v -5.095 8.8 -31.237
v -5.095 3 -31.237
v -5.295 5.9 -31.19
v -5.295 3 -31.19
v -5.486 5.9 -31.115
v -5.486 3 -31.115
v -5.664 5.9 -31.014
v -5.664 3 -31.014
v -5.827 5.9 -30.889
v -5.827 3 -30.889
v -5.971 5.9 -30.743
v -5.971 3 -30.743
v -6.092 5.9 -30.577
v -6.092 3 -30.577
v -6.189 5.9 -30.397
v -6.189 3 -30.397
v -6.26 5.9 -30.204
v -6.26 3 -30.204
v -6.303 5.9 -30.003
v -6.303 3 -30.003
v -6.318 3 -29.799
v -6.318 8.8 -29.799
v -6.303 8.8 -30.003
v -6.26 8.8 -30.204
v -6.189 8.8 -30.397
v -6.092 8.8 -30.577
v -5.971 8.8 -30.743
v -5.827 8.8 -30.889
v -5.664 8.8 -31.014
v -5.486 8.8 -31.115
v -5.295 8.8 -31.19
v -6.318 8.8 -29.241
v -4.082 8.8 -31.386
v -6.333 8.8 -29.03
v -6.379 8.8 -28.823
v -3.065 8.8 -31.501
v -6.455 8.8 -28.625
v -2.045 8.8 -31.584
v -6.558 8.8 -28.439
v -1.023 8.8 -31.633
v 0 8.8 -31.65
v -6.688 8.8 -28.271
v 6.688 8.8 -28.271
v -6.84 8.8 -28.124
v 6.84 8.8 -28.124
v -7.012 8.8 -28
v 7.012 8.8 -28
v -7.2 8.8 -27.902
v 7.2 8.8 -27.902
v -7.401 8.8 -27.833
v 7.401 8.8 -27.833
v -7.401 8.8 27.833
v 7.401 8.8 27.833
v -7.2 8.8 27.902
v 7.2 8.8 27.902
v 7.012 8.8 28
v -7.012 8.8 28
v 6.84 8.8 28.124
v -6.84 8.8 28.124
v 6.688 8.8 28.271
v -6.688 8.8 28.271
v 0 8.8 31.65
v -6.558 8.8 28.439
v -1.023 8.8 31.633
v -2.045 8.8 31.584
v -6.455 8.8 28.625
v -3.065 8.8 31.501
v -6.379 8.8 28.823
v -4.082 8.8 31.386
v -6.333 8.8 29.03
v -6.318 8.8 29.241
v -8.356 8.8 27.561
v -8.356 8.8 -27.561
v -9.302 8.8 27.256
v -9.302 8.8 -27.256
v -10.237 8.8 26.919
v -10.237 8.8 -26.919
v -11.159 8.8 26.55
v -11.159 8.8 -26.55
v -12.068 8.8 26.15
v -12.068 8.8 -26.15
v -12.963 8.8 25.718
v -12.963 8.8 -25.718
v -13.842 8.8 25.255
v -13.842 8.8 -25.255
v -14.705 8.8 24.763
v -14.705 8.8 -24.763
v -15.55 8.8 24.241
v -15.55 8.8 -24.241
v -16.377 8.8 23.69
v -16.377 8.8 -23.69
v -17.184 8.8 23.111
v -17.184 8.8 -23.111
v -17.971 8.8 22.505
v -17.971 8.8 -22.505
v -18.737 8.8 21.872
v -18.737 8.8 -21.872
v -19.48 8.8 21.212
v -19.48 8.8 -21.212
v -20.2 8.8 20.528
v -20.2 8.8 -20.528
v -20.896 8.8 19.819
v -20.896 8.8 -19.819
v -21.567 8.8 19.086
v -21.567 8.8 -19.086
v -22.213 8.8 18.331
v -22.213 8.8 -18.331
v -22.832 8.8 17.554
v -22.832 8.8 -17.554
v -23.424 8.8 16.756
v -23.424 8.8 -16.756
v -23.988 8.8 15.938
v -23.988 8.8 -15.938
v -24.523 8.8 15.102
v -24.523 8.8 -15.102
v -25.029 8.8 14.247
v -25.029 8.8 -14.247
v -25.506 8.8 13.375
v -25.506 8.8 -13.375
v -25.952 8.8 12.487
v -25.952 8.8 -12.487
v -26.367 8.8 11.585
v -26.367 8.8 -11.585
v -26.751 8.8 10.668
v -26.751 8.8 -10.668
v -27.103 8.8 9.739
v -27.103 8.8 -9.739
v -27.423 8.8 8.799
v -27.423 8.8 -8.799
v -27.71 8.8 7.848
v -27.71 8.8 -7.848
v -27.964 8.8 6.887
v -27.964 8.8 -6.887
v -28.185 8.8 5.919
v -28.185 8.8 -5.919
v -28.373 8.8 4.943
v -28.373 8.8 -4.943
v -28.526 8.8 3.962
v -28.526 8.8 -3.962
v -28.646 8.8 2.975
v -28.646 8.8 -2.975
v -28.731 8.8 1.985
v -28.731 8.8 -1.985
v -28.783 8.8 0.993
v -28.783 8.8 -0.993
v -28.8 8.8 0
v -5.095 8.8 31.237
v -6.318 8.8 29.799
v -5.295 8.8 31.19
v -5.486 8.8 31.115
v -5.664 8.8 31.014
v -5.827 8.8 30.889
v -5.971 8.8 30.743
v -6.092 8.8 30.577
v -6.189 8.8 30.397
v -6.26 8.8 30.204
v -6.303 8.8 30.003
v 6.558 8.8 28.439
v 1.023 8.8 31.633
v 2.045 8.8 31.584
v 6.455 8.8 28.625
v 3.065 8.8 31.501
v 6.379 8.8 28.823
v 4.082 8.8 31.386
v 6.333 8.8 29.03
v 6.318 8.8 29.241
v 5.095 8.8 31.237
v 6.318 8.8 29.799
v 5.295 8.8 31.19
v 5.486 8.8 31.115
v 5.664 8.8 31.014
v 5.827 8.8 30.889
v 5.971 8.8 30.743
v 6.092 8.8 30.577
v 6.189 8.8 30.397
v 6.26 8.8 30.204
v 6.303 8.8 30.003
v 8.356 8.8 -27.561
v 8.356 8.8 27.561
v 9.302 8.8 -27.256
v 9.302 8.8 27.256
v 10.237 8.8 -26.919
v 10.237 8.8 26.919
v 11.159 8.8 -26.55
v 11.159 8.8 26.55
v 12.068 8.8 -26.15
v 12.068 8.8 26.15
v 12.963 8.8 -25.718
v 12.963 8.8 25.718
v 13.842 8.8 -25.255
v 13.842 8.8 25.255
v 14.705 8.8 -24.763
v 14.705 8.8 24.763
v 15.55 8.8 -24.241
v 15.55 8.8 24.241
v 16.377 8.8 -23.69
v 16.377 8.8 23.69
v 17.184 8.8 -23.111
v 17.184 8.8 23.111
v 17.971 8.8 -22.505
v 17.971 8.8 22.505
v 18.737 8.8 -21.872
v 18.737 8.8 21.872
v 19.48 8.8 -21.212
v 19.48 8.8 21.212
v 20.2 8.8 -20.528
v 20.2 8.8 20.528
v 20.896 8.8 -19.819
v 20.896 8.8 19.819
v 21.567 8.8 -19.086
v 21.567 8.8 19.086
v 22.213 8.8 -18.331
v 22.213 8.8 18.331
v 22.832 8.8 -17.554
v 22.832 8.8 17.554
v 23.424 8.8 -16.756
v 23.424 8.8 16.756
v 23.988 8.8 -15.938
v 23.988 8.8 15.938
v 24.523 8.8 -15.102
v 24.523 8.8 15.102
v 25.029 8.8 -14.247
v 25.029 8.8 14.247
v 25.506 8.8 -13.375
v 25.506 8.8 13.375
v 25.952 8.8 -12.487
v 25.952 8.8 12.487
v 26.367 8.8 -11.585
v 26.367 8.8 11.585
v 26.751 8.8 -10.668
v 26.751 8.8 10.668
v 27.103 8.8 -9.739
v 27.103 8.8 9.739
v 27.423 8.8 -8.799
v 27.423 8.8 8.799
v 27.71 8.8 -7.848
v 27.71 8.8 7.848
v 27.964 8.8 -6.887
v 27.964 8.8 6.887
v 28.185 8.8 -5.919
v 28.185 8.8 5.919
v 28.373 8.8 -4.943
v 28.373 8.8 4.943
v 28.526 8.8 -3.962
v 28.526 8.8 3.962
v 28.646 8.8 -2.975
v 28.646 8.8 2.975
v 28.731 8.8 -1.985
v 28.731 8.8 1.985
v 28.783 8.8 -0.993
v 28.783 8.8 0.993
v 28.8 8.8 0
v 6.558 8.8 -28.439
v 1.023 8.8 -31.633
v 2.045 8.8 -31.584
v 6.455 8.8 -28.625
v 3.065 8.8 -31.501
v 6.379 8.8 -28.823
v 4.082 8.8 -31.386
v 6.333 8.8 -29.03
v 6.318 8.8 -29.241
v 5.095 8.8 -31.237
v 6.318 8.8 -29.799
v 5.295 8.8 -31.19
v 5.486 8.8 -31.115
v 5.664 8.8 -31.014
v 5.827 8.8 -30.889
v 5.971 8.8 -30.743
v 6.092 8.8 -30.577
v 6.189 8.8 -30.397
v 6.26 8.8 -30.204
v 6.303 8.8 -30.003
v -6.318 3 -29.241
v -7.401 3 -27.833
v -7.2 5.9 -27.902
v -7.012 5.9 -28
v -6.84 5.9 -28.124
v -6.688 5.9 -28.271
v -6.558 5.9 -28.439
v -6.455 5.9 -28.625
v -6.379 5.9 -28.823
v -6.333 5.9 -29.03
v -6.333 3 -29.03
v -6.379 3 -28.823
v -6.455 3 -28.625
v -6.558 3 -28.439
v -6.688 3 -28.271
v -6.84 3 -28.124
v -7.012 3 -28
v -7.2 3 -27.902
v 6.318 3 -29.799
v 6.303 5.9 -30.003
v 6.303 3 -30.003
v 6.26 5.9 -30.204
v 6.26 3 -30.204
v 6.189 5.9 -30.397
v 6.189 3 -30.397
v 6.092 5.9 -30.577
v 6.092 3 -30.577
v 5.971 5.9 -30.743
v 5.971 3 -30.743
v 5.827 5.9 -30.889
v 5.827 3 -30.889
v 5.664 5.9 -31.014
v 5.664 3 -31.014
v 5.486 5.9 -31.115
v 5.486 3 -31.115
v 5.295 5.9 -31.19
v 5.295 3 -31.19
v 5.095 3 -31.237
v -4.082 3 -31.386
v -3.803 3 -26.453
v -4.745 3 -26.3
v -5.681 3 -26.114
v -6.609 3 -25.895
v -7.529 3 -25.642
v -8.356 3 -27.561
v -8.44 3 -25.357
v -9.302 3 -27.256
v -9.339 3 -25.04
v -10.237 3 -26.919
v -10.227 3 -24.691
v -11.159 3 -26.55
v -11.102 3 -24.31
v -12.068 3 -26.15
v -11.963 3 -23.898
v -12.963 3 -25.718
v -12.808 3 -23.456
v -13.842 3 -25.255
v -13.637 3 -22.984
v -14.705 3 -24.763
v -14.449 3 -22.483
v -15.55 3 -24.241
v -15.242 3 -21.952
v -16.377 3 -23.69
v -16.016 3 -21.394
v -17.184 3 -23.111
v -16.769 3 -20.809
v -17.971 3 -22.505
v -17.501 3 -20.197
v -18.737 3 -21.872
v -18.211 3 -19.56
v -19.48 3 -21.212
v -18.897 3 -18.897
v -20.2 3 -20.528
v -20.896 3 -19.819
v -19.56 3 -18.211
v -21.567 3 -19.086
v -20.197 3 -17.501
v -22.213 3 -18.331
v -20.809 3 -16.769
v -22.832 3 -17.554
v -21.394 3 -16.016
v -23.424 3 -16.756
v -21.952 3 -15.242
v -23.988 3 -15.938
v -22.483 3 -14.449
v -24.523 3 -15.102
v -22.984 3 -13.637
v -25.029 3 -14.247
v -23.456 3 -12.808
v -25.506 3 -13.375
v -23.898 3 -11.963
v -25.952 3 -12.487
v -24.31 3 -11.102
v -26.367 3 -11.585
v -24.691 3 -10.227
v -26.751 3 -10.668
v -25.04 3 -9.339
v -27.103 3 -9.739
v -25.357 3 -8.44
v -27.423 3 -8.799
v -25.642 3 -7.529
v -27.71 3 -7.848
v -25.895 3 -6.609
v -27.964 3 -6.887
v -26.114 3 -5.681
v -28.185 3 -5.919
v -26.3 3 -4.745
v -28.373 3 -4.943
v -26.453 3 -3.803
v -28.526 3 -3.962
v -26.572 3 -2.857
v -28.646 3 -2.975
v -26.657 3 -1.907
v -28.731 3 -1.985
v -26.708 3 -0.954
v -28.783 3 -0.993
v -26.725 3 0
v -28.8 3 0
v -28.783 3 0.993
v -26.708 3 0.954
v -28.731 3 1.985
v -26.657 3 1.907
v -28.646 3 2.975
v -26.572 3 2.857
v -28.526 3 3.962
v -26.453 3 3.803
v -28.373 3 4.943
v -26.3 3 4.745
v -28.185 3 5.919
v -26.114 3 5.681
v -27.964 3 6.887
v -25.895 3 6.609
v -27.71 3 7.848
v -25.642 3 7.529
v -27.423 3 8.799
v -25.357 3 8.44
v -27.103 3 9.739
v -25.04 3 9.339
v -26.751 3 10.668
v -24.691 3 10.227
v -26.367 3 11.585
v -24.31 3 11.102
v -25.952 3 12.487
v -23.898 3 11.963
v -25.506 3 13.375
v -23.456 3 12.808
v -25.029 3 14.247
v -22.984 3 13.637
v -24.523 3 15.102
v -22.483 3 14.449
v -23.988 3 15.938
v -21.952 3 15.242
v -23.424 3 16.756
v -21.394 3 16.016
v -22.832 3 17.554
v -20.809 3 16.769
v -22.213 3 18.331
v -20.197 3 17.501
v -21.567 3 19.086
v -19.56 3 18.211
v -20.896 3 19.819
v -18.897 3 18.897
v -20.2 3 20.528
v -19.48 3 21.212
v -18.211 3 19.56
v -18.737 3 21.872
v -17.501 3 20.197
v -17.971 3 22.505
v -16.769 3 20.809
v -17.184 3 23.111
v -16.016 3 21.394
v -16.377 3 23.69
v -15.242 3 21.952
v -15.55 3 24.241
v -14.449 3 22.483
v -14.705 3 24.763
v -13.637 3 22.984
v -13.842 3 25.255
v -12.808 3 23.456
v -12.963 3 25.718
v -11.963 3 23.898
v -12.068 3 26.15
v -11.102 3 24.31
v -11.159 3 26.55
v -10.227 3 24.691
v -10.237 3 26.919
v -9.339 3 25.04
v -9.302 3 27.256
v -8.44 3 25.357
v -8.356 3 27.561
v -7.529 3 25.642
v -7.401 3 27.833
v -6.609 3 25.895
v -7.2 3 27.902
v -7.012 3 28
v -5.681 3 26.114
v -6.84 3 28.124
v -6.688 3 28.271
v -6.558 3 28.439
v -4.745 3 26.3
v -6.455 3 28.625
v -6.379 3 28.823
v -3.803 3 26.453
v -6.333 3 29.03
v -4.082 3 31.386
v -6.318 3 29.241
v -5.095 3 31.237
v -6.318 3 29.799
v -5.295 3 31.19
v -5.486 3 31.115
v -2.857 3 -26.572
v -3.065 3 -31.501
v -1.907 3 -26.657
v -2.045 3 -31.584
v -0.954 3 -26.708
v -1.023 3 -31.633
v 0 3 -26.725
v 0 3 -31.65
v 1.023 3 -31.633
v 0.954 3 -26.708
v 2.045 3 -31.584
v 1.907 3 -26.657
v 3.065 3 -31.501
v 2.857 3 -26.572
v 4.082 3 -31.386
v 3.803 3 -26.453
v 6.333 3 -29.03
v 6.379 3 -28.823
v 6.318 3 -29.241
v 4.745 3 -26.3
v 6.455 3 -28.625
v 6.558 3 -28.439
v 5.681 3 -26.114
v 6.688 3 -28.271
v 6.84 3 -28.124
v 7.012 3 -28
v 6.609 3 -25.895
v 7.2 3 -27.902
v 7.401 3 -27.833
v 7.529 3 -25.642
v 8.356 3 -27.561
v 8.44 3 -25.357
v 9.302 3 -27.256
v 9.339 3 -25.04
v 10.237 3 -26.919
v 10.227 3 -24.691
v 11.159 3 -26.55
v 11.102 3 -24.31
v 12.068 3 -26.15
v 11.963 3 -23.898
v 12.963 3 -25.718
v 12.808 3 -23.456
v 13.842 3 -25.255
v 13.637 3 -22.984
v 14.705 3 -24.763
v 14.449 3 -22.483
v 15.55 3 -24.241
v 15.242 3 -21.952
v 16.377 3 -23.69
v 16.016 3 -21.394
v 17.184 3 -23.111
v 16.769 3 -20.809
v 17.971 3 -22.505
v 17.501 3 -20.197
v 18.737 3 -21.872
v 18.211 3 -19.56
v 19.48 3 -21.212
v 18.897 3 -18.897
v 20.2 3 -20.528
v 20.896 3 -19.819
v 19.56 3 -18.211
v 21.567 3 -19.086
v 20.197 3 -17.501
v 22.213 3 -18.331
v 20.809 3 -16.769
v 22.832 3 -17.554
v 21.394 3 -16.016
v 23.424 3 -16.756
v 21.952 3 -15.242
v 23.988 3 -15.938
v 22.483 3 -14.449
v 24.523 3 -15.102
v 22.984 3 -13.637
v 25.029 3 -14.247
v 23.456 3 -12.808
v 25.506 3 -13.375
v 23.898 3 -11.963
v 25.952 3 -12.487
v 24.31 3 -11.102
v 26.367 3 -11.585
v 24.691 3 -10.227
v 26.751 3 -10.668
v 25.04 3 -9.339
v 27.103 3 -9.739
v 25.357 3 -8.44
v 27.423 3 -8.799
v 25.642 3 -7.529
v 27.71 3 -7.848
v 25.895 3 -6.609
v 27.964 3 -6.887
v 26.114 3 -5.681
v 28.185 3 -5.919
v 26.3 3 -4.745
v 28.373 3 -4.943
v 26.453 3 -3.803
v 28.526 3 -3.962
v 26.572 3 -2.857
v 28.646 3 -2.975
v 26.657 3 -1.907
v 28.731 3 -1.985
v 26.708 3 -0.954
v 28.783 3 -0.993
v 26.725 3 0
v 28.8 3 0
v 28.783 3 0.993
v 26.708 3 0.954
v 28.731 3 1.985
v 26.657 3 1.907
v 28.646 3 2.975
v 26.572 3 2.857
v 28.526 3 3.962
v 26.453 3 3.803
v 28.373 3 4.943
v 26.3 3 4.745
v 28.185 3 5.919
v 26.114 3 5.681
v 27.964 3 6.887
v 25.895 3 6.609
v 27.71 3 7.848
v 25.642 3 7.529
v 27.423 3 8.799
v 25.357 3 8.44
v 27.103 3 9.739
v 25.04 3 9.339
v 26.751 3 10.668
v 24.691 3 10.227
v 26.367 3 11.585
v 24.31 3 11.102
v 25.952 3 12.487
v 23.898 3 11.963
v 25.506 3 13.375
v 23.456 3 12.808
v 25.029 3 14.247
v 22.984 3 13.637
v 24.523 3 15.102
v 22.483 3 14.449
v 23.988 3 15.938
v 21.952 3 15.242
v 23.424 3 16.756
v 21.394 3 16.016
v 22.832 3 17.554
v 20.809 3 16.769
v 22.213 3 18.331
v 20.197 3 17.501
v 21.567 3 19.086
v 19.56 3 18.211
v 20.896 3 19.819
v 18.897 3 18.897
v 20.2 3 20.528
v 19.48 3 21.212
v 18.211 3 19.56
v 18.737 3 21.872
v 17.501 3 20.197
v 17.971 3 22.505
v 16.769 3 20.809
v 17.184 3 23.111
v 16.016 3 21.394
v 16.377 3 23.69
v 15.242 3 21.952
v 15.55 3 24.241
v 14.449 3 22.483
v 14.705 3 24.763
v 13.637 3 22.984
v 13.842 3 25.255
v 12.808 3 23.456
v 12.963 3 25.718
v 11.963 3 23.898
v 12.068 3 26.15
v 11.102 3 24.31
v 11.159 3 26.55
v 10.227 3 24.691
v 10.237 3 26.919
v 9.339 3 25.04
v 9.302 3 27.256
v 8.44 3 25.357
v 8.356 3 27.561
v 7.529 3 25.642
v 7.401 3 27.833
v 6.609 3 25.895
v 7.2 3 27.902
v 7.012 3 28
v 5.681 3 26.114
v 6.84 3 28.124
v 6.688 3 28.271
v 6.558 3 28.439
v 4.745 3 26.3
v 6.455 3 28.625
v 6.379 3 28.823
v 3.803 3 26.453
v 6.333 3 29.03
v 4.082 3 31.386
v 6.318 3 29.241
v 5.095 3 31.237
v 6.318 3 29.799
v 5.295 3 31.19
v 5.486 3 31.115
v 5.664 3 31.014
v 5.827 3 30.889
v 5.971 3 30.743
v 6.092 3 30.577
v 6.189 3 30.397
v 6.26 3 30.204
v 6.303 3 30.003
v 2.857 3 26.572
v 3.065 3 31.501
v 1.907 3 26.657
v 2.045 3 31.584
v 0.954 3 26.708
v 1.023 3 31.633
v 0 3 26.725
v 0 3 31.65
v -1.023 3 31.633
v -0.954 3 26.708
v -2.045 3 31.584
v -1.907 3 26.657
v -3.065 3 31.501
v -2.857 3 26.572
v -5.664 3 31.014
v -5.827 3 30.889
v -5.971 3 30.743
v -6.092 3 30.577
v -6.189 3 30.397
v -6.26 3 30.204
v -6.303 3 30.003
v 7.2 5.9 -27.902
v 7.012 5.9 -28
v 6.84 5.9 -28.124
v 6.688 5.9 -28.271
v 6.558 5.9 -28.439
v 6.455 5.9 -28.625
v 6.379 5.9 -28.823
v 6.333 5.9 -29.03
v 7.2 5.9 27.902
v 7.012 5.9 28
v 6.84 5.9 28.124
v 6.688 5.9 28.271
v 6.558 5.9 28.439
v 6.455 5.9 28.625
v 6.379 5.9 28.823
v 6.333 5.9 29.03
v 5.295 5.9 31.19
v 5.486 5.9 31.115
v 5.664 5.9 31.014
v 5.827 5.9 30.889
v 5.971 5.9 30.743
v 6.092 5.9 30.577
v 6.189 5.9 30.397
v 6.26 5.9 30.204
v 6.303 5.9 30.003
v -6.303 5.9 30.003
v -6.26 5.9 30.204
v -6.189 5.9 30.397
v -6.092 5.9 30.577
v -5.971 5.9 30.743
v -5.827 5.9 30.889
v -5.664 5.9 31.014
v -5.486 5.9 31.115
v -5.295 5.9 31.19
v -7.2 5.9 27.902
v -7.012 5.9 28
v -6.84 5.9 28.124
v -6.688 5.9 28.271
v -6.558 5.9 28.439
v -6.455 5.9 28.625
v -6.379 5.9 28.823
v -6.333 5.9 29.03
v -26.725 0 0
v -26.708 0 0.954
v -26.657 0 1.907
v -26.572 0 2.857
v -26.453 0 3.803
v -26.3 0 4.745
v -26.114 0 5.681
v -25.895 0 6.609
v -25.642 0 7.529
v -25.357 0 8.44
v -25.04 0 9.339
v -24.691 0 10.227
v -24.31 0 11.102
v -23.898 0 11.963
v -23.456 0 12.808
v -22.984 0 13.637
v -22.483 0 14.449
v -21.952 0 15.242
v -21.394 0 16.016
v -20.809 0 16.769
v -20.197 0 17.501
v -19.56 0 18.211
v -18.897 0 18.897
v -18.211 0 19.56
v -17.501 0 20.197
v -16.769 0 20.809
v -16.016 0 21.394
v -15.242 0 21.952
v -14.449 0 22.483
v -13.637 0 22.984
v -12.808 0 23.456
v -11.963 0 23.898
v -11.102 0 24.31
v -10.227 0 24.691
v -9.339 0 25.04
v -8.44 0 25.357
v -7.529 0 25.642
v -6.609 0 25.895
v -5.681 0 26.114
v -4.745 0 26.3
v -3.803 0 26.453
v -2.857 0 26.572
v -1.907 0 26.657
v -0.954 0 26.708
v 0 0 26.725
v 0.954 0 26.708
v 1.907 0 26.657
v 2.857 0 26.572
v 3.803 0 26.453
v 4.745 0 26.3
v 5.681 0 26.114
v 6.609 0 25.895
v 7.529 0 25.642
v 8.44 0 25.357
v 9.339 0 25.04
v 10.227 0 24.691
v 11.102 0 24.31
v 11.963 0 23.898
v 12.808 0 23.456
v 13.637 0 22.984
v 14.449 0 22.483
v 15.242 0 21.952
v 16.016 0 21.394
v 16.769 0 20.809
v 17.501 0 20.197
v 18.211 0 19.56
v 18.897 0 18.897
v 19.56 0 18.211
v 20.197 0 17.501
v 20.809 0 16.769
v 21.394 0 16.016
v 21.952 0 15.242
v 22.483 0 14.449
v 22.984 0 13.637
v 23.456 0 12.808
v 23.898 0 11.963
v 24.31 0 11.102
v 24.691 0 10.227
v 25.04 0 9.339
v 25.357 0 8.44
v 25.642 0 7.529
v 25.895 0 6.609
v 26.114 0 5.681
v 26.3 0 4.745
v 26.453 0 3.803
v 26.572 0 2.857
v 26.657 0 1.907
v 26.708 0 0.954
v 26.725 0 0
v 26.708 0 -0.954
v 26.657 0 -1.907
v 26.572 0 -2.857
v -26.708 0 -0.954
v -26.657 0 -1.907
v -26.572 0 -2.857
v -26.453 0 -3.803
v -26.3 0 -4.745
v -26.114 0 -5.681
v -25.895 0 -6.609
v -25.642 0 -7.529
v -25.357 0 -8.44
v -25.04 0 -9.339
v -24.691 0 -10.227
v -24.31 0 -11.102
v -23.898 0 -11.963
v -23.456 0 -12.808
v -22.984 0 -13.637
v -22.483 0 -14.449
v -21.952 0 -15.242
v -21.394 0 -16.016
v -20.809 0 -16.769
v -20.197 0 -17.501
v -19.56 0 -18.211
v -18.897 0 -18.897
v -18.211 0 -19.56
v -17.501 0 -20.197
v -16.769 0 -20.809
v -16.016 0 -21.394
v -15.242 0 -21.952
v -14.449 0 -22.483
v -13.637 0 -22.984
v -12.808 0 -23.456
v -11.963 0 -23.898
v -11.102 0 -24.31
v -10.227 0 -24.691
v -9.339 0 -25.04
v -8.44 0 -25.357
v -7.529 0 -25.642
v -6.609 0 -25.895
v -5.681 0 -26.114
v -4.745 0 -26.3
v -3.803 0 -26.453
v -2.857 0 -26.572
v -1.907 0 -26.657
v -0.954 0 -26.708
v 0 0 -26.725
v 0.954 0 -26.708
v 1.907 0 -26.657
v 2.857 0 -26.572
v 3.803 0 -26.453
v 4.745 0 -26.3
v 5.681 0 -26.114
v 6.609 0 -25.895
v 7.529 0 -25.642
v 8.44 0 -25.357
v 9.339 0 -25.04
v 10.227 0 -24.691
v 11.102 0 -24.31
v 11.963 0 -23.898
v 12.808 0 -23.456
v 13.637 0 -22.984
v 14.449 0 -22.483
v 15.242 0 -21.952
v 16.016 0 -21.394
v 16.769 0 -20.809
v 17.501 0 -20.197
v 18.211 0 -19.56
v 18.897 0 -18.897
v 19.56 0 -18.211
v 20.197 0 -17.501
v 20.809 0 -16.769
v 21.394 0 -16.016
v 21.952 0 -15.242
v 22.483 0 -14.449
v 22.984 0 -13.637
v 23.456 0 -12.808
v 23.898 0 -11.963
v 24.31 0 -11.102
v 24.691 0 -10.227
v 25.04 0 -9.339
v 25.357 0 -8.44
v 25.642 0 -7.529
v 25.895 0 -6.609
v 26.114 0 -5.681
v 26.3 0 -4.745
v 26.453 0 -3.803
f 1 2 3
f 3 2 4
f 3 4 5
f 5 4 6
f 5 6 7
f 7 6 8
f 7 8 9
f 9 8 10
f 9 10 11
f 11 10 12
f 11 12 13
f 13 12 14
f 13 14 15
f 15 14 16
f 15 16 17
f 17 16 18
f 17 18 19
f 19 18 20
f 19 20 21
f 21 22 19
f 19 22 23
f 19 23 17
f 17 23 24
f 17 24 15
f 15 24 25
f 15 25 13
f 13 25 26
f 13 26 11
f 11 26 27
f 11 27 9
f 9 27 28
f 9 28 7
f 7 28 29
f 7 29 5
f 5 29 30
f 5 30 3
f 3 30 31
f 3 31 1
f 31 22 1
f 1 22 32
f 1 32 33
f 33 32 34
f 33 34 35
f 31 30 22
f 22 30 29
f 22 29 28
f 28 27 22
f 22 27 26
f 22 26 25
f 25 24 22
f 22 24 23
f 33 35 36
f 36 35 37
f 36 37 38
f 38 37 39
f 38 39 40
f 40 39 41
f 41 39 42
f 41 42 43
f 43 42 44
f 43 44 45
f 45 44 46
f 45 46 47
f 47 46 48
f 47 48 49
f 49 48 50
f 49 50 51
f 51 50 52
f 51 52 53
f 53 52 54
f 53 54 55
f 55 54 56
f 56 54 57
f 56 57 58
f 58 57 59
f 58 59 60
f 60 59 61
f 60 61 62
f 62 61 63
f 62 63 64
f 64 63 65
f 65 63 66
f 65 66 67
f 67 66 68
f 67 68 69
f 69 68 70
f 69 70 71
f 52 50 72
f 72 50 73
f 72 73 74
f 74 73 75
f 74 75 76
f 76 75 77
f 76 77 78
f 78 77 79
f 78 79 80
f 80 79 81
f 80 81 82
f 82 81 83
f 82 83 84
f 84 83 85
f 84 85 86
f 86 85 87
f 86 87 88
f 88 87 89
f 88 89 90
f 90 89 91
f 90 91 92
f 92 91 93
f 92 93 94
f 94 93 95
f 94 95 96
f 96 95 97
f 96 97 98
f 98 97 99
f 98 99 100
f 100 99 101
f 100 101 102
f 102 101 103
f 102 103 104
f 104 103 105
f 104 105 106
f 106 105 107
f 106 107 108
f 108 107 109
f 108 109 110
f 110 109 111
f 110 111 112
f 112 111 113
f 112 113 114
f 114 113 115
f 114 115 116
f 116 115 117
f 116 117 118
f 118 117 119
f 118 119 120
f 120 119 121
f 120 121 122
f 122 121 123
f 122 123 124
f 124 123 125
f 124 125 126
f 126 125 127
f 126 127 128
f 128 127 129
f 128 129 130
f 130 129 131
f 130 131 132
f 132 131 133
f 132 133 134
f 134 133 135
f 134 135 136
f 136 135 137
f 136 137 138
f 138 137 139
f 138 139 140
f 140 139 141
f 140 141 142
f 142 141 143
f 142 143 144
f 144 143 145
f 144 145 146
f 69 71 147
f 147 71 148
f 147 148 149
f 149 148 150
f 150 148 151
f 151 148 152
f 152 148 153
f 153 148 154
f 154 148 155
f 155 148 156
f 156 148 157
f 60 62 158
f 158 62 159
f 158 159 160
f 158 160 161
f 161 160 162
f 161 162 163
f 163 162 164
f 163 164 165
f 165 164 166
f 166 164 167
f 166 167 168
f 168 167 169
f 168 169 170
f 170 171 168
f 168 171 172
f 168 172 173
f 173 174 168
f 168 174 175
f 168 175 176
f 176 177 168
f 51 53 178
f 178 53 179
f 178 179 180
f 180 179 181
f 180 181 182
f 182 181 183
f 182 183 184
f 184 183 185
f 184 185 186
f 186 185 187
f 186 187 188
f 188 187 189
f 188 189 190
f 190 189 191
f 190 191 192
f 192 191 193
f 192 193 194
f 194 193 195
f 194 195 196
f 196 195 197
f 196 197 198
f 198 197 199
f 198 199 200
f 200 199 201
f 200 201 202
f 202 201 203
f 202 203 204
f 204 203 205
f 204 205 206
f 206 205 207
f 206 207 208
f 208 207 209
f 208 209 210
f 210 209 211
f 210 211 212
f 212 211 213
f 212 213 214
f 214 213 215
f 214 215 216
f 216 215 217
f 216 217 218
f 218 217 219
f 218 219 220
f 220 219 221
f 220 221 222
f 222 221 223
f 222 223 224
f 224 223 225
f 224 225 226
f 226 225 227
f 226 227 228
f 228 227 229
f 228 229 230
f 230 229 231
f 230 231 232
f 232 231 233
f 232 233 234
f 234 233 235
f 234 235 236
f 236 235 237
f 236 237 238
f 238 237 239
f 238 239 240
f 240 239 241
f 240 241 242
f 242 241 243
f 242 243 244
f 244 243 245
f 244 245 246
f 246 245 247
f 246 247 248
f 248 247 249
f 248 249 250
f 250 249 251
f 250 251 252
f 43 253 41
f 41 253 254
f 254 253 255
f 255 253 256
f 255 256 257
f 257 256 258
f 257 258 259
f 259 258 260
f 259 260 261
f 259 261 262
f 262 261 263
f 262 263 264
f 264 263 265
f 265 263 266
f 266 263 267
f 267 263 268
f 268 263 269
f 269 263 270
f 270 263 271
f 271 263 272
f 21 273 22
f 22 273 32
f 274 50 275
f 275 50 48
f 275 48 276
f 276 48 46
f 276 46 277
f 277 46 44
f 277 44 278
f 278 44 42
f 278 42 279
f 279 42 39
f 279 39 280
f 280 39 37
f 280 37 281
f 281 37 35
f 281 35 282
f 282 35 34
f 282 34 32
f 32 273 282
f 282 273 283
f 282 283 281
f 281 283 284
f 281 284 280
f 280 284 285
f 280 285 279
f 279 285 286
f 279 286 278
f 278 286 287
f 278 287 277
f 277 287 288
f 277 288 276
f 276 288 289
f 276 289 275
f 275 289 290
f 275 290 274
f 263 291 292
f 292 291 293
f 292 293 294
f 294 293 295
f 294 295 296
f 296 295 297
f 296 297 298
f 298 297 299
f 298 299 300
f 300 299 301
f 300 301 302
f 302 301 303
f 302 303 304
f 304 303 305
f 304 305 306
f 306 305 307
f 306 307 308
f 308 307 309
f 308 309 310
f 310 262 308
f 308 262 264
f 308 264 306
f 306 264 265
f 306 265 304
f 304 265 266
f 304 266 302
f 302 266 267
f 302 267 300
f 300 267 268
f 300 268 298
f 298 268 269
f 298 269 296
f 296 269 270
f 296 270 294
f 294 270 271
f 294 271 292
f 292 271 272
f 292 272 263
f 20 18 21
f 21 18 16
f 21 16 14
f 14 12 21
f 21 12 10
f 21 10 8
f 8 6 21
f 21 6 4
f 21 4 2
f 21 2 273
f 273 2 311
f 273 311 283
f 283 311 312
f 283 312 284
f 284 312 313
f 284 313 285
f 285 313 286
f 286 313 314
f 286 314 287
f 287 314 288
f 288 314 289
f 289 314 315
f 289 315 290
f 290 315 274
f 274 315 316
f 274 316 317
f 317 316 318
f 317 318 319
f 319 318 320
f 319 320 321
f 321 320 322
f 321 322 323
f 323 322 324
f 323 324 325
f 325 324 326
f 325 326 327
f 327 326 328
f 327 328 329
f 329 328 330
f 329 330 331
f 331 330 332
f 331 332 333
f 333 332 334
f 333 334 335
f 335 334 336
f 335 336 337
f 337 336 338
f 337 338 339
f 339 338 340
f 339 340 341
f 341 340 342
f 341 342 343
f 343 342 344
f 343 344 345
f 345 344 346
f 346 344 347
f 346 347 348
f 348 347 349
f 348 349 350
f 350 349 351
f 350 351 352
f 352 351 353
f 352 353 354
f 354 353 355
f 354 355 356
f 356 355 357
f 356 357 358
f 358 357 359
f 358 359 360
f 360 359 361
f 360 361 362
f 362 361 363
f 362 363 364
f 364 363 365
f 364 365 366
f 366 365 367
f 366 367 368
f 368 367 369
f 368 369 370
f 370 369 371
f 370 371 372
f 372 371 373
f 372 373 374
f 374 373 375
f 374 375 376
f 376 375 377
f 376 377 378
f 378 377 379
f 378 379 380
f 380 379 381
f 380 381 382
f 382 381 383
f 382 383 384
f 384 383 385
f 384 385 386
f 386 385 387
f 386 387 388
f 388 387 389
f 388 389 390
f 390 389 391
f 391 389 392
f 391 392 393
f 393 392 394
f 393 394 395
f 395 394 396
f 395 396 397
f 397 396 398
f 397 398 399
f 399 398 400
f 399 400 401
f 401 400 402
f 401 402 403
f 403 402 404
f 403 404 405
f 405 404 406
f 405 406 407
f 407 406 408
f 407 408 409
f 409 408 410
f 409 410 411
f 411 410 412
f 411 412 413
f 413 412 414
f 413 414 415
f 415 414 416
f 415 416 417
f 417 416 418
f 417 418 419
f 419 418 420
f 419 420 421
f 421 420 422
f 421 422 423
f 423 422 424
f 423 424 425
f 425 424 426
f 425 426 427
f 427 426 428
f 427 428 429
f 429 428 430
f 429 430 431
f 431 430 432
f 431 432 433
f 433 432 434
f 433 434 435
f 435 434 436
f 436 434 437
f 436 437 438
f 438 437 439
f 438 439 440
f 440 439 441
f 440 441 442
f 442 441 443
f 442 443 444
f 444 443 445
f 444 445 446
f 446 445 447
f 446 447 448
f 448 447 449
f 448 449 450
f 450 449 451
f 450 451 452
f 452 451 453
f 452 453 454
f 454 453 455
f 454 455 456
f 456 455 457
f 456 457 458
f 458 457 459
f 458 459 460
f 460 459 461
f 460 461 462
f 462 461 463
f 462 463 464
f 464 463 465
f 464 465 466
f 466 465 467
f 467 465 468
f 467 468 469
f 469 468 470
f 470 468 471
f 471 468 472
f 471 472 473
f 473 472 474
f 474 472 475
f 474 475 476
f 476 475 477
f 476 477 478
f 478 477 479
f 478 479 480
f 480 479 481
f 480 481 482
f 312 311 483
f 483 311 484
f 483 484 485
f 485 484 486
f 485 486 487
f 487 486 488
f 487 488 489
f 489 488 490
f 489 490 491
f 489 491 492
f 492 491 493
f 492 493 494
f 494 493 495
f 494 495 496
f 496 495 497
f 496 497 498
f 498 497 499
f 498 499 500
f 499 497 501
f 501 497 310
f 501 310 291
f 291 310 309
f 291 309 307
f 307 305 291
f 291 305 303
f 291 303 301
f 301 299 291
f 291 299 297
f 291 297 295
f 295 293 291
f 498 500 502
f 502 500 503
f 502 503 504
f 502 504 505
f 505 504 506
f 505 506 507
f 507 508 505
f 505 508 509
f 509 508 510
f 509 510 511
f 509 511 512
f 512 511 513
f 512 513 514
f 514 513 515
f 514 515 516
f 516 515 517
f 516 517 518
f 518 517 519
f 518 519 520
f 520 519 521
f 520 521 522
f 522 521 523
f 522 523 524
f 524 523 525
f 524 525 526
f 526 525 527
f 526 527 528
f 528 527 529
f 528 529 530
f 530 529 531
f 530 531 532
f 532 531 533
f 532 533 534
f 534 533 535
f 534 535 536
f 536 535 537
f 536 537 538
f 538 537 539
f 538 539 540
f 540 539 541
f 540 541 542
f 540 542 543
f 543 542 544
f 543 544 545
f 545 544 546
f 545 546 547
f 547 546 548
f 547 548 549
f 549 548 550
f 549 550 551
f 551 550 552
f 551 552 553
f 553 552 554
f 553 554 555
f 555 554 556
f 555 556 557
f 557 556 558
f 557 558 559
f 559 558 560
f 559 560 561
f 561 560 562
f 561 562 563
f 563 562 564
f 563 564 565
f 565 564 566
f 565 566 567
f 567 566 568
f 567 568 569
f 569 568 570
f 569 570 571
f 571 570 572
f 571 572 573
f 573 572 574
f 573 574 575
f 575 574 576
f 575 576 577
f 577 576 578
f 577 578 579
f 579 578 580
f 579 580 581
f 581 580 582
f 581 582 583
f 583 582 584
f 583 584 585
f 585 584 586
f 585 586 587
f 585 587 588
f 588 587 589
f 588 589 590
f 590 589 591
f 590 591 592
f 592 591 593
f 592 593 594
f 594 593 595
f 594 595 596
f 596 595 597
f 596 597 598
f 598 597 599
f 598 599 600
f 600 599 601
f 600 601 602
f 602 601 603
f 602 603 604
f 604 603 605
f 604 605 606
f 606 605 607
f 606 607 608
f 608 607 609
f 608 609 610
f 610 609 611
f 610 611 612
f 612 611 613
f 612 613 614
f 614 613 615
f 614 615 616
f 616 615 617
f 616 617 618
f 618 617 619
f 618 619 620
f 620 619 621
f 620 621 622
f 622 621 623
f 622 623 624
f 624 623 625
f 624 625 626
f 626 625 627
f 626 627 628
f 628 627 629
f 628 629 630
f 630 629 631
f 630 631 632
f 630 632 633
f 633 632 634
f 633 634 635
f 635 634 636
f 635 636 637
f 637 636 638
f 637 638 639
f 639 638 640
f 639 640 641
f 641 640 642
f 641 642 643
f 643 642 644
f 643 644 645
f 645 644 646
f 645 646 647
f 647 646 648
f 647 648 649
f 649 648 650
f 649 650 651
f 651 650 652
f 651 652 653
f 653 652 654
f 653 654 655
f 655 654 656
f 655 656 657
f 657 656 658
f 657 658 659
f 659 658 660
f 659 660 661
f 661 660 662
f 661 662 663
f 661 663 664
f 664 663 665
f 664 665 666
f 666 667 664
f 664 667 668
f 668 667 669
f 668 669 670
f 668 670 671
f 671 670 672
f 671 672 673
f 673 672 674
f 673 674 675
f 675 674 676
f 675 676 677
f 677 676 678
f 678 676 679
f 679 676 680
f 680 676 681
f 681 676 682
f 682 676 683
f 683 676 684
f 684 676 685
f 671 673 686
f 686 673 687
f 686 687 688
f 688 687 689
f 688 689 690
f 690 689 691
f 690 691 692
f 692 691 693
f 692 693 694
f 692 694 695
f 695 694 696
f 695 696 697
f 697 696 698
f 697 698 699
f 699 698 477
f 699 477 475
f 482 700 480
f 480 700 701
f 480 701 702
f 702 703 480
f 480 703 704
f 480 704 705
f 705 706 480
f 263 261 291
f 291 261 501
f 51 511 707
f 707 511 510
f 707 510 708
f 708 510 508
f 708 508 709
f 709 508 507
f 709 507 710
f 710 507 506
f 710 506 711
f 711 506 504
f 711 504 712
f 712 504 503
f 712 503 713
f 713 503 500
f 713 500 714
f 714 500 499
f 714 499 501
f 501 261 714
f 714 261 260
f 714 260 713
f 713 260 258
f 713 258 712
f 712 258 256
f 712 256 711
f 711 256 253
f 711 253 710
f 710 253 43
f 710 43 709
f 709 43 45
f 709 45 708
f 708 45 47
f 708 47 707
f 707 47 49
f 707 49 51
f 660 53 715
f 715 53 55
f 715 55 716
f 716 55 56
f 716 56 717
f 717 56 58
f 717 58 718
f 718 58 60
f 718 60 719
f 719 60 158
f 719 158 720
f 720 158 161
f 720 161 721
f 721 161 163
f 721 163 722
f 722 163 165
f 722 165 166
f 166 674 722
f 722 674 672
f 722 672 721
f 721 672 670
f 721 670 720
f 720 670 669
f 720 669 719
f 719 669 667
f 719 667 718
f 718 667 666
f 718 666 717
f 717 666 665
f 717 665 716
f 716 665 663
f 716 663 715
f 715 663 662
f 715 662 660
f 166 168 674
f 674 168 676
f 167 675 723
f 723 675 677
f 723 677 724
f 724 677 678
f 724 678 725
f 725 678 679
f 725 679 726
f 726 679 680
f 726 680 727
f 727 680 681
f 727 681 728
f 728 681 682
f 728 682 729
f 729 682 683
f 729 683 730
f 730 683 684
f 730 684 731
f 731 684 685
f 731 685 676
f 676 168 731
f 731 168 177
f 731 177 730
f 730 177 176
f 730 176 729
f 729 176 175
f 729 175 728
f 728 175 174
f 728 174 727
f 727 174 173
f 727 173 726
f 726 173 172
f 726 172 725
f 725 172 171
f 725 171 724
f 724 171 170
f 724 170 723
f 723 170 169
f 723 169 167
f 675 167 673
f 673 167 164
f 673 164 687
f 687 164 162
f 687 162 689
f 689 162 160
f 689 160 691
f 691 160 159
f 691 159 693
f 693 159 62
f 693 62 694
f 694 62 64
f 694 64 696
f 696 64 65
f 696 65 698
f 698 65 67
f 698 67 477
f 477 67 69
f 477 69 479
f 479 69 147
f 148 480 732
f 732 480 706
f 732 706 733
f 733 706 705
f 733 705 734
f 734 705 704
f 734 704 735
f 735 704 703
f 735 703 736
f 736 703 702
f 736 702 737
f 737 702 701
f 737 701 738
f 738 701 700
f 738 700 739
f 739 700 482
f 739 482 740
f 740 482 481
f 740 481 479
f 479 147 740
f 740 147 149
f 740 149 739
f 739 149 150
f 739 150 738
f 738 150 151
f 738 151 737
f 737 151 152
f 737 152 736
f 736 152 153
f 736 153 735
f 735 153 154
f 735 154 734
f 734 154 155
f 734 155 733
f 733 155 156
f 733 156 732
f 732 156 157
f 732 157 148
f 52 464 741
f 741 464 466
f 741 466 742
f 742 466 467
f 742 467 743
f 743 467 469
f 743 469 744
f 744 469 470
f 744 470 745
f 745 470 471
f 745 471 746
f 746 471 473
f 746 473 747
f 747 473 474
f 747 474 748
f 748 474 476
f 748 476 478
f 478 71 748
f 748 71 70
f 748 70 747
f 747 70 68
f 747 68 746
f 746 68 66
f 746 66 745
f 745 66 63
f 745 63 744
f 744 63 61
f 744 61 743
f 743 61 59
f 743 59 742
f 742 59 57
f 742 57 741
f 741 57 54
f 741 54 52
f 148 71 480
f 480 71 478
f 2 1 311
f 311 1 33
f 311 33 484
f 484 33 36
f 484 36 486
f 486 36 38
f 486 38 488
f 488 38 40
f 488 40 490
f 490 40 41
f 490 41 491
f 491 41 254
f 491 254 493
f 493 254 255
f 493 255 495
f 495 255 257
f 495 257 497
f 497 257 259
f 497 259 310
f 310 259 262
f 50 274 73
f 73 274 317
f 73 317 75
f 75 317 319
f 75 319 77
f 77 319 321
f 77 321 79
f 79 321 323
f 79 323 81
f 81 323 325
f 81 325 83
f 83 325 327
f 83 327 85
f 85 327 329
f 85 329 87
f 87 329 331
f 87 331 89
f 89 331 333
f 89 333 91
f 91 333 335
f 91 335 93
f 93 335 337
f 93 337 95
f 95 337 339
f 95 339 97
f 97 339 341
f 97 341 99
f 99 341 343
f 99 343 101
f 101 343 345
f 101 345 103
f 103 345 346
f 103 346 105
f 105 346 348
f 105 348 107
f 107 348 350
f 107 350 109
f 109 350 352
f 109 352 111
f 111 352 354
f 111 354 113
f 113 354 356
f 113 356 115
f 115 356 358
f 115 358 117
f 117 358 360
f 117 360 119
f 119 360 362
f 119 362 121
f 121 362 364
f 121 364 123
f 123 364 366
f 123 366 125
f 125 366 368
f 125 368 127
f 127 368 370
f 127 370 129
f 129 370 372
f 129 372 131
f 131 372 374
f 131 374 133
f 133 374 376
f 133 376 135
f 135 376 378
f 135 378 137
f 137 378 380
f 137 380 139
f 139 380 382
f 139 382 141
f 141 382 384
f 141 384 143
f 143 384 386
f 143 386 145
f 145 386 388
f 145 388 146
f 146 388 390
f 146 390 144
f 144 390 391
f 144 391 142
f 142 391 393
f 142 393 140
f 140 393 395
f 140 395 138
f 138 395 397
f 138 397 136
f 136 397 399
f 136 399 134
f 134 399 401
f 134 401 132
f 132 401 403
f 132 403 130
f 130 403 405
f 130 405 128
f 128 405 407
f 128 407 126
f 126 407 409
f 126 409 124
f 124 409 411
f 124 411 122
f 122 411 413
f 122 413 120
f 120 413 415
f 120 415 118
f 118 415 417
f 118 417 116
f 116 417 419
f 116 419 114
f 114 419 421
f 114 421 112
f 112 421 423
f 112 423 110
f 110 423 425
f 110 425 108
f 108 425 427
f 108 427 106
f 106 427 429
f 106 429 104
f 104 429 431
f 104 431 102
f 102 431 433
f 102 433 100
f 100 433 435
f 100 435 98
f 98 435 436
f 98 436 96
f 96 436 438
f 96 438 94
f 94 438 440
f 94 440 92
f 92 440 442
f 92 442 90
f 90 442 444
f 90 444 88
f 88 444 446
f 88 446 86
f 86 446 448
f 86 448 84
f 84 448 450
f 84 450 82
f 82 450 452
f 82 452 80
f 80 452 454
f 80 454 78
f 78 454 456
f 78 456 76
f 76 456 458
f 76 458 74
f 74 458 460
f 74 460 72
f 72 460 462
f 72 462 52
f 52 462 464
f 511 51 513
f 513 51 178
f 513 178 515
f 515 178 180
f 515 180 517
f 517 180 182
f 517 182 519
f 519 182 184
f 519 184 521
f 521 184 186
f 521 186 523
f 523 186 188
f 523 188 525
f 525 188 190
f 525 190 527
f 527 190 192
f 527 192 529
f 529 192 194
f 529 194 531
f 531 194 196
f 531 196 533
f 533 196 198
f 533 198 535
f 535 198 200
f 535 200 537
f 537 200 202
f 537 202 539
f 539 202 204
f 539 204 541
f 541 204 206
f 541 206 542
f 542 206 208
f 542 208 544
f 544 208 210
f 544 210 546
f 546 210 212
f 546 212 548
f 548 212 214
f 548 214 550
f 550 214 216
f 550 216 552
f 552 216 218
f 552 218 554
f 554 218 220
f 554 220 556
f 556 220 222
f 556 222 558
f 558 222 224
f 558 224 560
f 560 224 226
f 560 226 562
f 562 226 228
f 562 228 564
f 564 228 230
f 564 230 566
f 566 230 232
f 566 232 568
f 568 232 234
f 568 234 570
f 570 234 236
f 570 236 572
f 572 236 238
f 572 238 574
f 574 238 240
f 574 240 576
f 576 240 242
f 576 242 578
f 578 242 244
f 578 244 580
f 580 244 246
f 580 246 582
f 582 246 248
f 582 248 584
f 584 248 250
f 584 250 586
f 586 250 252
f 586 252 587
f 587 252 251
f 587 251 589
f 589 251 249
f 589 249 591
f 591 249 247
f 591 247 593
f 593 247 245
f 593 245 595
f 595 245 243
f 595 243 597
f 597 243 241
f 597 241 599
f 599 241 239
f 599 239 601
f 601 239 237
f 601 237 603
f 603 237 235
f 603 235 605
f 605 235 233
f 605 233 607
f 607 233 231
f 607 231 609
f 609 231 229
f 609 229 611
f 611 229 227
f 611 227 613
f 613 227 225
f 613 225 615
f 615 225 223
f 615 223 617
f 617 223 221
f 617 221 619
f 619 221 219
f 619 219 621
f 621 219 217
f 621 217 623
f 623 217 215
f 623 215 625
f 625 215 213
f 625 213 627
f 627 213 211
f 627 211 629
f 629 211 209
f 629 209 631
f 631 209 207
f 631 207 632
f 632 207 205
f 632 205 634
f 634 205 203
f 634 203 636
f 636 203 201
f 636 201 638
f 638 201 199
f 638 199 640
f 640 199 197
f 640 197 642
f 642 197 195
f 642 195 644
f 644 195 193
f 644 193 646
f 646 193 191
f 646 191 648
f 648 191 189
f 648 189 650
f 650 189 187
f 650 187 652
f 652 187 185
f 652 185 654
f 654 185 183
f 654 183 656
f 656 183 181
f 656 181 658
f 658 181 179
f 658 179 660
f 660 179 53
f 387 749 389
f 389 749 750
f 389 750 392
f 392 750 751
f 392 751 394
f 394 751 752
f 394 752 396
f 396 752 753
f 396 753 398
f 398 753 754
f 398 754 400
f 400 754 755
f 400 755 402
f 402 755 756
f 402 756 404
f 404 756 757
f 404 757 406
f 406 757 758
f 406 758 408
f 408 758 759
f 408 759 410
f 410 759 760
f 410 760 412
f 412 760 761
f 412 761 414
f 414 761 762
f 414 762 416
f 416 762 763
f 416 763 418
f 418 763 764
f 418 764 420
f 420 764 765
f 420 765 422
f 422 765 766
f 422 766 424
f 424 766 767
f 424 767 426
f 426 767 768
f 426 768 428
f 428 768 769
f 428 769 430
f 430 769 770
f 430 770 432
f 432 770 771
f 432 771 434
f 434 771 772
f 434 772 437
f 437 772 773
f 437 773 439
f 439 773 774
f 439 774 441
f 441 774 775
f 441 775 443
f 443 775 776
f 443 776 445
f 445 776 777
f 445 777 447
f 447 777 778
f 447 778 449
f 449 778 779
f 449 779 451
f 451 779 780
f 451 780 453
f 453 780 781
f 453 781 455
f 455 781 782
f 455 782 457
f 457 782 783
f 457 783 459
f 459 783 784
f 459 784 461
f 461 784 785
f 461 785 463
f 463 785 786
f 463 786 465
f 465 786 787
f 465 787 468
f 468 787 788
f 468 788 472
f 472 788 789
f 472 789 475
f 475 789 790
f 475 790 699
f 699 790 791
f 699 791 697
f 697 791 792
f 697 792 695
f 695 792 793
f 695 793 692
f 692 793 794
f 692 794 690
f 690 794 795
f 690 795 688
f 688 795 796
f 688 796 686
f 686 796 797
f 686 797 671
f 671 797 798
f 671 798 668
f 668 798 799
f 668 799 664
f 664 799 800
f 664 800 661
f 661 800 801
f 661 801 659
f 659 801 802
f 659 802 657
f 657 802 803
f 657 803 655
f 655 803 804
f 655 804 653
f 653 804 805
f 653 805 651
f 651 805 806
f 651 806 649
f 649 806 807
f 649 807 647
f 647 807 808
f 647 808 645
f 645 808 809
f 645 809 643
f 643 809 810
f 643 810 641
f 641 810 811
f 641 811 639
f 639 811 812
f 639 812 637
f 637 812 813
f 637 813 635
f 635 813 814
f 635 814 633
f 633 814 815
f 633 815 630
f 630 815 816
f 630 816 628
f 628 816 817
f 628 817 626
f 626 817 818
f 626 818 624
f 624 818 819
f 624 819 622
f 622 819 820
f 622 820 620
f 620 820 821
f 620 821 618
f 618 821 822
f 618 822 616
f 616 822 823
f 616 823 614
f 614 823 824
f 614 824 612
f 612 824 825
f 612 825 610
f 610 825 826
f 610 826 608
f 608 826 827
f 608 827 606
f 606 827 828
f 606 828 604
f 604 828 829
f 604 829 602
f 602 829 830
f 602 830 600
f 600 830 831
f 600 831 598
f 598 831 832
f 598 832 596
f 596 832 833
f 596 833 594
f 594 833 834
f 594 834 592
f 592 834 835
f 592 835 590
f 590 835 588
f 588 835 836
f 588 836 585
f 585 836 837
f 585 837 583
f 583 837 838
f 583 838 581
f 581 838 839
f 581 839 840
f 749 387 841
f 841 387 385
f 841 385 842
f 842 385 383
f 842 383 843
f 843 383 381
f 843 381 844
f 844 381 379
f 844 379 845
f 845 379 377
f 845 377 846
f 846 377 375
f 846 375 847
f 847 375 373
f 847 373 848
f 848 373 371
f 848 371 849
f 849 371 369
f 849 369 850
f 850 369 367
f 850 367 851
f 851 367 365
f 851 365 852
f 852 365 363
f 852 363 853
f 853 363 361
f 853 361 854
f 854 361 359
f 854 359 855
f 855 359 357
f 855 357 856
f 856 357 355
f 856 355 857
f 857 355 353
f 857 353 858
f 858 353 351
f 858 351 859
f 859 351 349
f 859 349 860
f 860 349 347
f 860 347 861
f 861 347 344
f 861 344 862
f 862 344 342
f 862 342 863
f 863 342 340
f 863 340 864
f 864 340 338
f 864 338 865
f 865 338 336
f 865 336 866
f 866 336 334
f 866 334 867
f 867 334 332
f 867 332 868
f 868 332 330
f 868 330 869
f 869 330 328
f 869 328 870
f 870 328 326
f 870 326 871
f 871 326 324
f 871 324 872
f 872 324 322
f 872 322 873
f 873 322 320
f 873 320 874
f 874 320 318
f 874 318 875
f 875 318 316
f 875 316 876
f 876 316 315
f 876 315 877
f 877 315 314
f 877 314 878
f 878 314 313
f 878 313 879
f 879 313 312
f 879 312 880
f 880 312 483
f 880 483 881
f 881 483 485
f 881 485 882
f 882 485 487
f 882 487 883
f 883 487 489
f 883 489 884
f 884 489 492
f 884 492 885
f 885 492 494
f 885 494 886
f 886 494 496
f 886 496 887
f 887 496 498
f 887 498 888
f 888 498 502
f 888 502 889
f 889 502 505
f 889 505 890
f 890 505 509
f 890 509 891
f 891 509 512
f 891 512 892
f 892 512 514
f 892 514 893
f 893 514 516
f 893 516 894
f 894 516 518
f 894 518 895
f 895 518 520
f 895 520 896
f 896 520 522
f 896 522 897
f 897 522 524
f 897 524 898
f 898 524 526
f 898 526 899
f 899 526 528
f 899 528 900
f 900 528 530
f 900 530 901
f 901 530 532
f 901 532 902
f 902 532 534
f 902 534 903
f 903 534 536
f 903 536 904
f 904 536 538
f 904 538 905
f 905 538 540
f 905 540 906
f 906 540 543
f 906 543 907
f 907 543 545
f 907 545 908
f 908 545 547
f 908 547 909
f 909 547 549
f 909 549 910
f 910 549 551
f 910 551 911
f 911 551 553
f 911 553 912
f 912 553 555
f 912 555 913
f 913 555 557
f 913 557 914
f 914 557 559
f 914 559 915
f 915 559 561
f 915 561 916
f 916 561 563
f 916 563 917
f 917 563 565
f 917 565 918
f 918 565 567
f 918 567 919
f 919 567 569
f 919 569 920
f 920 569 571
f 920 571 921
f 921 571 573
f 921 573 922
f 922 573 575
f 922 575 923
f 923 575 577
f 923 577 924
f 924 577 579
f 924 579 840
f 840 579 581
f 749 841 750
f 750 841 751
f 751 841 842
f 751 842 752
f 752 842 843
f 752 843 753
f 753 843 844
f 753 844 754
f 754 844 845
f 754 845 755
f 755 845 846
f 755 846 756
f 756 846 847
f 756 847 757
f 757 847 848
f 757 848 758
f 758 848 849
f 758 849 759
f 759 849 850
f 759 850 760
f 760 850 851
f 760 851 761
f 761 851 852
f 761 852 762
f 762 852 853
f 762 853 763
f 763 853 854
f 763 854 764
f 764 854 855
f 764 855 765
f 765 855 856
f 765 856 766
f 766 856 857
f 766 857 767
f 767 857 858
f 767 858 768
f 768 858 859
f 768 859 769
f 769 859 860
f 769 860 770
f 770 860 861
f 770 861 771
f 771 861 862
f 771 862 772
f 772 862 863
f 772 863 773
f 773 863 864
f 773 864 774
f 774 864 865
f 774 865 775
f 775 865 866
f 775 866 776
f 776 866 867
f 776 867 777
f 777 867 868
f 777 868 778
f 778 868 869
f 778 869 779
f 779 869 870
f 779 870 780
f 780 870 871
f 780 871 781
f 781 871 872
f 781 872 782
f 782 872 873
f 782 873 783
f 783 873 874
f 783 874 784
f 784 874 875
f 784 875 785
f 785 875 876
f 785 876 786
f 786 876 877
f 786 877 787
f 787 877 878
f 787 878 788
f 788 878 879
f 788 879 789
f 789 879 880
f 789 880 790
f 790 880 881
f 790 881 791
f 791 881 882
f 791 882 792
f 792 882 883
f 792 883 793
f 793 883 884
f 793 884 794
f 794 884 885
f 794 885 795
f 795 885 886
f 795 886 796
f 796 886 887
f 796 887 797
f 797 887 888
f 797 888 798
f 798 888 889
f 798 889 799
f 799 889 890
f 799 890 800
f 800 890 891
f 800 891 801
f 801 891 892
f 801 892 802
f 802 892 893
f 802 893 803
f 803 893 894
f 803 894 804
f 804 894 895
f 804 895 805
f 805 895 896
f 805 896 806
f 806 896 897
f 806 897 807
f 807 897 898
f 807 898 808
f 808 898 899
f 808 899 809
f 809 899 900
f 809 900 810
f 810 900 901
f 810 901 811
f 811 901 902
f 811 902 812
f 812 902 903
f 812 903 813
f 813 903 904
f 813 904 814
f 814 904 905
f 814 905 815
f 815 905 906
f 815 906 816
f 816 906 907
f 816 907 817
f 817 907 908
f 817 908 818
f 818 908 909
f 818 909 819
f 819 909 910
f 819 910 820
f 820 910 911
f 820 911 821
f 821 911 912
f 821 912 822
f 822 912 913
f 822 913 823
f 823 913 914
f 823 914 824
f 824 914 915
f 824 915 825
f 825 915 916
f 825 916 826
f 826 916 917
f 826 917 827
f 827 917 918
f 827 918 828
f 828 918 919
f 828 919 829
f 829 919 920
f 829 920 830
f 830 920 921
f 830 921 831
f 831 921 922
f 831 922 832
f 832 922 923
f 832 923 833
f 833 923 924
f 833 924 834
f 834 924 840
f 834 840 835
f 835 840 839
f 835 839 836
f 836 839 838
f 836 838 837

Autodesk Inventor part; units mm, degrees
ref_plane "YZ Plane" through (0, 0, 0) normal (1, 0, 0) x (0, 1, 0)
ref_plane "XZ Plane" through (0, 0, 0) normal (0, 1, 0) x (-1, 0, 0)
ref_plane "XY Plane" through (0, 0, 0) normal (0, 0, 1) x (1, 0, 0)
sketch "Sketch1" plane through (0, 0, 0) normal (0, 1, 0) x (-1, 0, 0)
  circle A0 centre (0, 0) radius 26.725
  dimension "d0" = 53.45
extrude "Extrusion1" add sketch "Sketch1" along normal blind 3
sketch "Sketch2" plane through (0, 3, 0) normal (0, 1, 0) x (1, 0, 0)
  circle A0 centre (0, 0) radius 28.8
  dimension "d3" = 57.6
extrude "Extrusion2" add sketch "Sketch2" along normal blind 5.8
sketch "Sketch4" plane through (0, 8.8, 0) normal (0, 1, 0) x (1, 0, 0)
  circle A0 centre (0, 0) radius 31.65
  circle A1 centre (0, 0) radius 28.8
  circle A2 centre (0, 0) radius 28.8 projected
  line L0 (6.3178, -28.0985) -> (-6.3178, -28.0985)
  line L1 (-6.3178, -28.0985) -> (-6.3178, -31.013)
  line L2 (6.3178, -28.0985) -> (6.3178, -31.013)
  line L3 (-6.3178, 28.0985) -> (6.3178, 28.0985)
  line L4 (6.3178, 28.0985) -> (6.3178, 31.013)
  line L5 (-6.3178, 28.0985) -> (-6.3178, 31.013)
  dimension "d13" = 63.3
  dimension "d16" = 360
  dimension "d18" = 56.197
extrude "Extrusion3" add sketch "Sketch4" against normal up to surface (5.8 mm away) contours L4 A1 L5 A0 | A0 L1 A1 L2
fillet "Fillet1" radius 1.4575 8 edges at (-6.3178, 5.9, 28.0985) (-6.3178, 5.9, 31.013) (6.3178, 5.9, 31.013) (6.3178, 5.9, 28.0985) (6.3178, 5.9, -28.0985) (6.3178, 5.9, -31.013) (-6.3178, 5.9, -28.0985) (-6.3178, 5.9, -31.013)
properties part number "HSI cap"
